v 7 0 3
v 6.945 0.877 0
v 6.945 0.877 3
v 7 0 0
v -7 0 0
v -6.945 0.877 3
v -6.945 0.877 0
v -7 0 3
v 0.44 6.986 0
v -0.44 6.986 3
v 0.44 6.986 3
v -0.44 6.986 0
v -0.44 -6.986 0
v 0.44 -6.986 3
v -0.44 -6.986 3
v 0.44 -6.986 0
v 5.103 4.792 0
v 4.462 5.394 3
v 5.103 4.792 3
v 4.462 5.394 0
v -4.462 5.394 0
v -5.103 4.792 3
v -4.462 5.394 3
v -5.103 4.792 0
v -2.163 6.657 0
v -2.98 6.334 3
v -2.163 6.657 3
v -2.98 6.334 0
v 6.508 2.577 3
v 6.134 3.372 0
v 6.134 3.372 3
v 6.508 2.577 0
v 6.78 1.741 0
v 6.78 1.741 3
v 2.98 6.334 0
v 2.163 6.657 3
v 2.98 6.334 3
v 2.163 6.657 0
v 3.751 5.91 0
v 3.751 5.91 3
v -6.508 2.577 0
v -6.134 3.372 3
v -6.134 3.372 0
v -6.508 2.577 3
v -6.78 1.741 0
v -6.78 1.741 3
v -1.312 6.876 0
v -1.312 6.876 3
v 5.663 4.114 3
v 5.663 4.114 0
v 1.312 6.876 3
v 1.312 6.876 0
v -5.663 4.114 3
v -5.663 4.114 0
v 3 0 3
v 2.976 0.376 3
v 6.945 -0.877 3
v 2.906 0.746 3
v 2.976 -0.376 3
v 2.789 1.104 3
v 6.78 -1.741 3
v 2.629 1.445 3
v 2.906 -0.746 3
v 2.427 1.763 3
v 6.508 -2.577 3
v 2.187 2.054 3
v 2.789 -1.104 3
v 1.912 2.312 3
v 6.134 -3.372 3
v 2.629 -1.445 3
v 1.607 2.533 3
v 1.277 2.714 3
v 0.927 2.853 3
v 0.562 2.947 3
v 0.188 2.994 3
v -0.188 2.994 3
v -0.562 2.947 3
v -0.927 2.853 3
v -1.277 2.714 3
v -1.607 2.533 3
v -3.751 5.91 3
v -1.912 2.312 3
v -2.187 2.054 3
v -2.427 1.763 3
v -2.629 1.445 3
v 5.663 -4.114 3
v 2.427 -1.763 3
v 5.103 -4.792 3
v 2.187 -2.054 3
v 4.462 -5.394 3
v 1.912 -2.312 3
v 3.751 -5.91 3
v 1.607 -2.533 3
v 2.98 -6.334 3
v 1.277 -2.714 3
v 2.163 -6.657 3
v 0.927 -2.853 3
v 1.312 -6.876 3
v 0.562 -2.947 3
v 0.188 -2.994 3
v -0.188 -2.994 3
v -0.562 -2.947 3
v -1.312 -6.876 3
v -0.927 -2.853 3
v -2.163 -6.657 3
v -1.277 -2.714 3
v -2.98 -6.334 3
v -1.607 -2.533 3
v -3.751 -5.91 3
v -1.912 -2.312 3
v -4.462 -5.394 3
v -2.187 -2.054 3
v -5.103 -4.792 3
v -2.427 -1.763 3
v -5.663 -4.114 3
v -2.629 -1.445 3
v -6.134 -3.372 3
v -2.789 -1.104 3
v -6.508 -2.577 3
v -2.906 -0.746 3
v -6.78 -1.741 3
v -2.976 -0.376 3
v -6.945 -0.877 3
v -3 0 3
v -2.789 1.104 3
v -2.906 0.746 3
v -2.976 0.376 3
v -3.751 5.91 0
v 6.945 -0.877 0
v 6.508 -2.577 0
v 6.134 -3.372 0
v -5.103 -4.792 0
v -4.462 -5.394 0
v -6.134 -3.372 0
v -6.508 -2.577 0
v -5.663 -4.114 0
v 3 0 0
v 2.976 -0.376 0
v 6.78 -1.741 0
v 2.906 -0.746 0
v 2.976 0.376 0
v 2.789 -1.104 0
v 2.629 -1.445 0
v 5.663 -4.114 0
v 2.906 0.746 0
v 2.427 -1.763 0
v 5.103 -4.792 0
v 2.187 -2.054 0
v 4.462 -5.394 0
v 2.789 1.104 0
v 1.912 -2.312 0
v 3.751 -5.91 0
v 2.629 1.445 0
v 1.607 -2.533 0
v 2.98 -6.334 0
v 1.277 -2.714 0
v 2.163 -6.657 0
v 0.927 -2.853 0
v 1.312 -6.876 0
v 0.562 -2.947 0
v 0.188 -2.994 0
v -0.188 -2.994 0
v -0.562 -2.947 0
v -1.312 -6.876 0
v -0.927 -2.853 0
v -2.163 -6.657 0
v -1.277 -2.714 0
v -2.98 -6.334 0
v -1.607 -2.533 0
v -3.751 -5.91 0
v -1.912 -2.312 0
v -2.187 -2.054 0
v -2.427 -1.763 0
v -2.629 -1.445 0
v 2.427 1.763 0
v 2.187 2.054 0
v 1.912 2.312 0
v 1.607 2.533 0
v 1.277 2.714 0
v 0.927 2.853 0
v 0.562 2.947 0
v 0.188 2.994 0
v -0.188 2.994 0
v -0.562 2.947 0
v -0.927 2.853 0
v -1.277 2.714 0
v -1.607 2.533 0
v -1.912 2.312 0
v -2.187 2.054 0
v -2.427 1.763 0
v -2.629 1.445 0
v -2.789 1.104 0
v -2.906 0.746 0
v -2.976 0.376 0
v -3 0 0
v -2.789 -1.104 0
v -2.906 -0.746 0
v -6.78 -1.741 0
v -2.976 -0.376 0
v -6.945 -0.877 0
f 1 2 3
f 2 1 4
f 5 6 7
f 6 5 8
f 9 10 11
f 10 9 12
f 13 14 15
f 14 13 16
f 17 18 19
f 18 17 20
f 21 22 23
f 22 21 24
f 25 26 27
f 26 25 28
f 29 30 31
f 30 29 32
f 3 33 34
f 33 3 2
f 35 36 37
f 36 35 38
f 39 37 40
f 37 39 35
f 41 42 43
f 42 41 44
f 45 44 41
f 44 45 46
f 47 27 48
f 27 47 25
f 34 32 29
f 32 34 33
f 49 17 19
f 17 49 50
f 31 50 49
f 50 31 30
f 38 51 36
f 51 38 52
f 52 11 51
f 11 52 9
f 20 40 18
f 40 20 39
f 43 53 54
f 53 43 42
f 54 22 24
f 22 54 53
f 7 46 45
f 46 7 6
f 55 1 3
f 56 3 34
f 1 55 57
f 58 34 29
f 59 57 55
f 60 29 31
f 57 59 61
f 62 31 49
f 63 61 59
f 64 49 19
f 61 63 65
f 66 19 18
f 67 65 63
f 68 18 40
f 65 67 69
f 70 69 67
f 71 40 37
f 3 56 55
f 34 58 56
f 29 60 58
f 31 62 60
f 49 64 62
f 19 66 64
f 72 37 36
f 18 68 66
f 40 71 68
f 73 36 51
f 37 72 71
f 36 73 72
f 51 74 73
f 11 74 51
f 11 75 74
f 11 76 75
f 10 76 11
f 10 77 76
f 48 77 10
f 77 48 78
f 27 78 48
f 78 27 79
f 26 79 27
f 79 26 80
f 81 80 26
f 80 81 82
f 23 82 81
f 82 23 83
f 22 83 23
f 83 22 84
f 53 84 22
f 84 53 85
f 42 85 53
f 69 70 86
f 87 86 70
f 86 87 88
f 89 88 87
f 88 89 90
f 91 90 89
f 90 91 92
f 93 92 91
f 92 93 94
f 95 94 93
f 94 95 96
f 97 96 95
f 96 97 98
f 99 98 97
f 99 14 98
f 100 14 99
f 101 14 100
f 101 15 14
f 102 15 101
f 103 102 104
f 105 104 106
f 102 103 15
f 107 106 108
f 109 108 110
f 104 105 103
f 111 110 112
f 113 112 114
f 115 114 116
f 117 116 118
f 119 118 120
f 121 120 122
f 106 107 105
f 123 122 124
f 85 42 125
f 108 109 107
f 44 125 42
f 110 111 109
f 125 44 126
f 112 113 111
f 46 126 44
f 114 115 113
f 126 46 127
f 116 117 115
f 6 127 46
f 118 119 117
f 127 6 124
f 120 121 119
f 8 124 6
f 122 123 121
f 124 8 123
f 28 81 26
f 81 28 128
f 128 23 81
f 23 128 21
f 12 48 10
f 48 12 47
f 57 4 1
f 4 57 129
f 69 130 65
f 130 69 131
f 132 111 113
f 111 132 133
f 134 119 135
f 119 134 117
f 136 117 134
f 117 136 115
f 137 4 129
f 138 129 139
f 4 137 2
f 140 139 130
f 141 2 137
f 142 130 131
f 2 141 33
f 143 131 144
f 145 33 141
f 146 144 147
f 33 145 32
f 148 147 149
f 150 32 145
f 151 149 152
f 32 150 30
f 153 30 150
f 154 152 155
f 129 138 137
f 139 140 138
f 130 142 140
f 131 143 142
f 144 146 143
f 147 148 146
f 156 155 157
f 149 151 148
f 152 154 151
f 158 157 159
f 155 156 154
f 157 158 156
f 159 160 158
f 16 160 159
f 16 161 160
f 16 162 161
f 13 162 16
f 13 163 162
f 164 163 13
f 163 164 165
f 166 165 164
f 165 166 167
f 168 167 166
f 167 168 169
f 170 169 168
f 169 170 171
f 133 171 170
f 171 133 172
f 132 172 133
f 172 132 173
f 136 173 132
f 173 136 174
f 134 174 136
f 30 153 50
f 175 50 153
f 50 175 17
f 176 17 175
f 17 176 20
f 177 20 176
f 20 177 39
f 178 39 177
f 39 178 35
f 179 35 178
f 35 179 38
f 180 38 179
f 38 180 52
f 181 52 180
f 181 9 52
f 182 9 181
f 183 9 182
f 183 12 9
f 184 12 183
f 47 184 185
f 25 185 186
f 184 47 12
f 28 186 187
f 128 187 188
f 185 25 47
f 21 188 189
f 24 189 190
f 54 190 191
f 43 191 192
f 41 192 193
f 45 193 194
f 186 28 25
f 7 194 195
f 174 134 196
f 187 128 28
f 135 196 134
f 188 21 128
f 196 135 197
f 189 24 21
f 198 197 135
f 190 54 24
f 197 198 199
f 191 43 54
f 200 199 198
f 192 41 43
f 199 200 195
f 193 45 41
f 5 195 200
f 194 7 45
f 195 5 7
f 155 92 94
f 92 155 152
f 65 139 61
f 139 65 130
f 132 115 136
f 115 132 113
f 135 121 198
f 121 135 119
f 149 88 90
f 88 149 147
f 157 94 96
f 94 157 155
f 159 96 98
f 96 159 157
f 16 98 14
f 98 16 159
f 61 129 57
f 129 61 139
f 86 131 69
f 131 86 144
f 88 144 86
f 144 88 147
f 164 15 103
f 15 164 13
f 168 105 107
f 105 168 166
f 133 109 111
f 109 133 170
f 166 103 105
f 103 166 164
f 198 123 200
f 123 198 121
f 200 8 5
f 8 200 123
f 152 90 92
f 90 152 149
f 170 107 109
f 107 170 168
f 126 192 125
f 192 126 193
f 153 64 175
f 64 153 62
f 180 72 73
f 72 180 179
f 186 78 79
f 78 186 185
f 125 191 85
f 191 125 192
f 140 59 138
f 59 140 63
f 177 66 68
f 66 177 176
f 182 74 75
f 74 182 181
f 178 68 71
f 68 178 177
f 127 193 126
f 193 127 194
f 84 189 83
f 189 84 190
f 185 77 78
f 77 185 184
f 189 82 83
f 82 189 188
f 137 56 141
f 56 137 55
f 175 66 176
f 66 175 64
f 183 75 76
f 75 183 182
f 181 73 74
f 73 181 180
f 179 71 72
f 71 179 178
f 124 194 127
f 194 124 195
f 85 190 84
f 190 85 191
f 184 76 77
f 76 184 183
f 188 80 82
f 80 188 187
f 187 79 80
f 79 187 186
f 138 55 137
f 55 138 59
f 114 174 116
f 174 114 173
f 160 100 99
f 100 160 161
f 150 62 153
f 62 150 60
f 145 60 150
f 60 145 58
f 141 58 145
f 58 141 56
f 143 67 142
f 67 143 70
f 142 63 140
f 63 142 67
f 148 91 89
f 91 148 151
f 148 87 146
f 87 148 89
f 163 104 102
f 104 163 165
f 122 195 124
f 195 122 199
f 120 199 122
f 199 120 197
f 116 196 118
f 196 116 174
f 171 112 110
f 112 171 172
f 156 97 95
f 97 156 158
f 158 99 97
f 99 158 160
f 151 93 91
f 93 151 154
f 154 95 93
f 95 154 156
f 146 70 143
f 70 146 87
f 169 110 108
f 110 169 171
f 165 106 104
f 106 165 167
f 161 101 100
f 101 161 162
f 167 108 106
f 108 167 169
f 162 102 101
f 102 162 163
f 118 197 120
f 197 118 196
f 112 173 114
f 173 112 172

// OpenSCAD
$fn = 50;


difference() {
	union() {
		translate(v = [0, 0, 0]) {
			rotate(a = [0, 0, 0]) {
				cylinder(h = 3, r = 7.0000000000);
			}
		}
	}
	union() {
		translate(v = [0.0000000000, 0.0000000000, 0]) {
			rotate(a = [0, 0, 0]) {
				translate(v = [0, 0, -50]) {
					rotate(a = [0, 0, 0]) {
						cylinder(h = 100, r = 3.0000000000);
					}
				}
			}
		}
	}
}
